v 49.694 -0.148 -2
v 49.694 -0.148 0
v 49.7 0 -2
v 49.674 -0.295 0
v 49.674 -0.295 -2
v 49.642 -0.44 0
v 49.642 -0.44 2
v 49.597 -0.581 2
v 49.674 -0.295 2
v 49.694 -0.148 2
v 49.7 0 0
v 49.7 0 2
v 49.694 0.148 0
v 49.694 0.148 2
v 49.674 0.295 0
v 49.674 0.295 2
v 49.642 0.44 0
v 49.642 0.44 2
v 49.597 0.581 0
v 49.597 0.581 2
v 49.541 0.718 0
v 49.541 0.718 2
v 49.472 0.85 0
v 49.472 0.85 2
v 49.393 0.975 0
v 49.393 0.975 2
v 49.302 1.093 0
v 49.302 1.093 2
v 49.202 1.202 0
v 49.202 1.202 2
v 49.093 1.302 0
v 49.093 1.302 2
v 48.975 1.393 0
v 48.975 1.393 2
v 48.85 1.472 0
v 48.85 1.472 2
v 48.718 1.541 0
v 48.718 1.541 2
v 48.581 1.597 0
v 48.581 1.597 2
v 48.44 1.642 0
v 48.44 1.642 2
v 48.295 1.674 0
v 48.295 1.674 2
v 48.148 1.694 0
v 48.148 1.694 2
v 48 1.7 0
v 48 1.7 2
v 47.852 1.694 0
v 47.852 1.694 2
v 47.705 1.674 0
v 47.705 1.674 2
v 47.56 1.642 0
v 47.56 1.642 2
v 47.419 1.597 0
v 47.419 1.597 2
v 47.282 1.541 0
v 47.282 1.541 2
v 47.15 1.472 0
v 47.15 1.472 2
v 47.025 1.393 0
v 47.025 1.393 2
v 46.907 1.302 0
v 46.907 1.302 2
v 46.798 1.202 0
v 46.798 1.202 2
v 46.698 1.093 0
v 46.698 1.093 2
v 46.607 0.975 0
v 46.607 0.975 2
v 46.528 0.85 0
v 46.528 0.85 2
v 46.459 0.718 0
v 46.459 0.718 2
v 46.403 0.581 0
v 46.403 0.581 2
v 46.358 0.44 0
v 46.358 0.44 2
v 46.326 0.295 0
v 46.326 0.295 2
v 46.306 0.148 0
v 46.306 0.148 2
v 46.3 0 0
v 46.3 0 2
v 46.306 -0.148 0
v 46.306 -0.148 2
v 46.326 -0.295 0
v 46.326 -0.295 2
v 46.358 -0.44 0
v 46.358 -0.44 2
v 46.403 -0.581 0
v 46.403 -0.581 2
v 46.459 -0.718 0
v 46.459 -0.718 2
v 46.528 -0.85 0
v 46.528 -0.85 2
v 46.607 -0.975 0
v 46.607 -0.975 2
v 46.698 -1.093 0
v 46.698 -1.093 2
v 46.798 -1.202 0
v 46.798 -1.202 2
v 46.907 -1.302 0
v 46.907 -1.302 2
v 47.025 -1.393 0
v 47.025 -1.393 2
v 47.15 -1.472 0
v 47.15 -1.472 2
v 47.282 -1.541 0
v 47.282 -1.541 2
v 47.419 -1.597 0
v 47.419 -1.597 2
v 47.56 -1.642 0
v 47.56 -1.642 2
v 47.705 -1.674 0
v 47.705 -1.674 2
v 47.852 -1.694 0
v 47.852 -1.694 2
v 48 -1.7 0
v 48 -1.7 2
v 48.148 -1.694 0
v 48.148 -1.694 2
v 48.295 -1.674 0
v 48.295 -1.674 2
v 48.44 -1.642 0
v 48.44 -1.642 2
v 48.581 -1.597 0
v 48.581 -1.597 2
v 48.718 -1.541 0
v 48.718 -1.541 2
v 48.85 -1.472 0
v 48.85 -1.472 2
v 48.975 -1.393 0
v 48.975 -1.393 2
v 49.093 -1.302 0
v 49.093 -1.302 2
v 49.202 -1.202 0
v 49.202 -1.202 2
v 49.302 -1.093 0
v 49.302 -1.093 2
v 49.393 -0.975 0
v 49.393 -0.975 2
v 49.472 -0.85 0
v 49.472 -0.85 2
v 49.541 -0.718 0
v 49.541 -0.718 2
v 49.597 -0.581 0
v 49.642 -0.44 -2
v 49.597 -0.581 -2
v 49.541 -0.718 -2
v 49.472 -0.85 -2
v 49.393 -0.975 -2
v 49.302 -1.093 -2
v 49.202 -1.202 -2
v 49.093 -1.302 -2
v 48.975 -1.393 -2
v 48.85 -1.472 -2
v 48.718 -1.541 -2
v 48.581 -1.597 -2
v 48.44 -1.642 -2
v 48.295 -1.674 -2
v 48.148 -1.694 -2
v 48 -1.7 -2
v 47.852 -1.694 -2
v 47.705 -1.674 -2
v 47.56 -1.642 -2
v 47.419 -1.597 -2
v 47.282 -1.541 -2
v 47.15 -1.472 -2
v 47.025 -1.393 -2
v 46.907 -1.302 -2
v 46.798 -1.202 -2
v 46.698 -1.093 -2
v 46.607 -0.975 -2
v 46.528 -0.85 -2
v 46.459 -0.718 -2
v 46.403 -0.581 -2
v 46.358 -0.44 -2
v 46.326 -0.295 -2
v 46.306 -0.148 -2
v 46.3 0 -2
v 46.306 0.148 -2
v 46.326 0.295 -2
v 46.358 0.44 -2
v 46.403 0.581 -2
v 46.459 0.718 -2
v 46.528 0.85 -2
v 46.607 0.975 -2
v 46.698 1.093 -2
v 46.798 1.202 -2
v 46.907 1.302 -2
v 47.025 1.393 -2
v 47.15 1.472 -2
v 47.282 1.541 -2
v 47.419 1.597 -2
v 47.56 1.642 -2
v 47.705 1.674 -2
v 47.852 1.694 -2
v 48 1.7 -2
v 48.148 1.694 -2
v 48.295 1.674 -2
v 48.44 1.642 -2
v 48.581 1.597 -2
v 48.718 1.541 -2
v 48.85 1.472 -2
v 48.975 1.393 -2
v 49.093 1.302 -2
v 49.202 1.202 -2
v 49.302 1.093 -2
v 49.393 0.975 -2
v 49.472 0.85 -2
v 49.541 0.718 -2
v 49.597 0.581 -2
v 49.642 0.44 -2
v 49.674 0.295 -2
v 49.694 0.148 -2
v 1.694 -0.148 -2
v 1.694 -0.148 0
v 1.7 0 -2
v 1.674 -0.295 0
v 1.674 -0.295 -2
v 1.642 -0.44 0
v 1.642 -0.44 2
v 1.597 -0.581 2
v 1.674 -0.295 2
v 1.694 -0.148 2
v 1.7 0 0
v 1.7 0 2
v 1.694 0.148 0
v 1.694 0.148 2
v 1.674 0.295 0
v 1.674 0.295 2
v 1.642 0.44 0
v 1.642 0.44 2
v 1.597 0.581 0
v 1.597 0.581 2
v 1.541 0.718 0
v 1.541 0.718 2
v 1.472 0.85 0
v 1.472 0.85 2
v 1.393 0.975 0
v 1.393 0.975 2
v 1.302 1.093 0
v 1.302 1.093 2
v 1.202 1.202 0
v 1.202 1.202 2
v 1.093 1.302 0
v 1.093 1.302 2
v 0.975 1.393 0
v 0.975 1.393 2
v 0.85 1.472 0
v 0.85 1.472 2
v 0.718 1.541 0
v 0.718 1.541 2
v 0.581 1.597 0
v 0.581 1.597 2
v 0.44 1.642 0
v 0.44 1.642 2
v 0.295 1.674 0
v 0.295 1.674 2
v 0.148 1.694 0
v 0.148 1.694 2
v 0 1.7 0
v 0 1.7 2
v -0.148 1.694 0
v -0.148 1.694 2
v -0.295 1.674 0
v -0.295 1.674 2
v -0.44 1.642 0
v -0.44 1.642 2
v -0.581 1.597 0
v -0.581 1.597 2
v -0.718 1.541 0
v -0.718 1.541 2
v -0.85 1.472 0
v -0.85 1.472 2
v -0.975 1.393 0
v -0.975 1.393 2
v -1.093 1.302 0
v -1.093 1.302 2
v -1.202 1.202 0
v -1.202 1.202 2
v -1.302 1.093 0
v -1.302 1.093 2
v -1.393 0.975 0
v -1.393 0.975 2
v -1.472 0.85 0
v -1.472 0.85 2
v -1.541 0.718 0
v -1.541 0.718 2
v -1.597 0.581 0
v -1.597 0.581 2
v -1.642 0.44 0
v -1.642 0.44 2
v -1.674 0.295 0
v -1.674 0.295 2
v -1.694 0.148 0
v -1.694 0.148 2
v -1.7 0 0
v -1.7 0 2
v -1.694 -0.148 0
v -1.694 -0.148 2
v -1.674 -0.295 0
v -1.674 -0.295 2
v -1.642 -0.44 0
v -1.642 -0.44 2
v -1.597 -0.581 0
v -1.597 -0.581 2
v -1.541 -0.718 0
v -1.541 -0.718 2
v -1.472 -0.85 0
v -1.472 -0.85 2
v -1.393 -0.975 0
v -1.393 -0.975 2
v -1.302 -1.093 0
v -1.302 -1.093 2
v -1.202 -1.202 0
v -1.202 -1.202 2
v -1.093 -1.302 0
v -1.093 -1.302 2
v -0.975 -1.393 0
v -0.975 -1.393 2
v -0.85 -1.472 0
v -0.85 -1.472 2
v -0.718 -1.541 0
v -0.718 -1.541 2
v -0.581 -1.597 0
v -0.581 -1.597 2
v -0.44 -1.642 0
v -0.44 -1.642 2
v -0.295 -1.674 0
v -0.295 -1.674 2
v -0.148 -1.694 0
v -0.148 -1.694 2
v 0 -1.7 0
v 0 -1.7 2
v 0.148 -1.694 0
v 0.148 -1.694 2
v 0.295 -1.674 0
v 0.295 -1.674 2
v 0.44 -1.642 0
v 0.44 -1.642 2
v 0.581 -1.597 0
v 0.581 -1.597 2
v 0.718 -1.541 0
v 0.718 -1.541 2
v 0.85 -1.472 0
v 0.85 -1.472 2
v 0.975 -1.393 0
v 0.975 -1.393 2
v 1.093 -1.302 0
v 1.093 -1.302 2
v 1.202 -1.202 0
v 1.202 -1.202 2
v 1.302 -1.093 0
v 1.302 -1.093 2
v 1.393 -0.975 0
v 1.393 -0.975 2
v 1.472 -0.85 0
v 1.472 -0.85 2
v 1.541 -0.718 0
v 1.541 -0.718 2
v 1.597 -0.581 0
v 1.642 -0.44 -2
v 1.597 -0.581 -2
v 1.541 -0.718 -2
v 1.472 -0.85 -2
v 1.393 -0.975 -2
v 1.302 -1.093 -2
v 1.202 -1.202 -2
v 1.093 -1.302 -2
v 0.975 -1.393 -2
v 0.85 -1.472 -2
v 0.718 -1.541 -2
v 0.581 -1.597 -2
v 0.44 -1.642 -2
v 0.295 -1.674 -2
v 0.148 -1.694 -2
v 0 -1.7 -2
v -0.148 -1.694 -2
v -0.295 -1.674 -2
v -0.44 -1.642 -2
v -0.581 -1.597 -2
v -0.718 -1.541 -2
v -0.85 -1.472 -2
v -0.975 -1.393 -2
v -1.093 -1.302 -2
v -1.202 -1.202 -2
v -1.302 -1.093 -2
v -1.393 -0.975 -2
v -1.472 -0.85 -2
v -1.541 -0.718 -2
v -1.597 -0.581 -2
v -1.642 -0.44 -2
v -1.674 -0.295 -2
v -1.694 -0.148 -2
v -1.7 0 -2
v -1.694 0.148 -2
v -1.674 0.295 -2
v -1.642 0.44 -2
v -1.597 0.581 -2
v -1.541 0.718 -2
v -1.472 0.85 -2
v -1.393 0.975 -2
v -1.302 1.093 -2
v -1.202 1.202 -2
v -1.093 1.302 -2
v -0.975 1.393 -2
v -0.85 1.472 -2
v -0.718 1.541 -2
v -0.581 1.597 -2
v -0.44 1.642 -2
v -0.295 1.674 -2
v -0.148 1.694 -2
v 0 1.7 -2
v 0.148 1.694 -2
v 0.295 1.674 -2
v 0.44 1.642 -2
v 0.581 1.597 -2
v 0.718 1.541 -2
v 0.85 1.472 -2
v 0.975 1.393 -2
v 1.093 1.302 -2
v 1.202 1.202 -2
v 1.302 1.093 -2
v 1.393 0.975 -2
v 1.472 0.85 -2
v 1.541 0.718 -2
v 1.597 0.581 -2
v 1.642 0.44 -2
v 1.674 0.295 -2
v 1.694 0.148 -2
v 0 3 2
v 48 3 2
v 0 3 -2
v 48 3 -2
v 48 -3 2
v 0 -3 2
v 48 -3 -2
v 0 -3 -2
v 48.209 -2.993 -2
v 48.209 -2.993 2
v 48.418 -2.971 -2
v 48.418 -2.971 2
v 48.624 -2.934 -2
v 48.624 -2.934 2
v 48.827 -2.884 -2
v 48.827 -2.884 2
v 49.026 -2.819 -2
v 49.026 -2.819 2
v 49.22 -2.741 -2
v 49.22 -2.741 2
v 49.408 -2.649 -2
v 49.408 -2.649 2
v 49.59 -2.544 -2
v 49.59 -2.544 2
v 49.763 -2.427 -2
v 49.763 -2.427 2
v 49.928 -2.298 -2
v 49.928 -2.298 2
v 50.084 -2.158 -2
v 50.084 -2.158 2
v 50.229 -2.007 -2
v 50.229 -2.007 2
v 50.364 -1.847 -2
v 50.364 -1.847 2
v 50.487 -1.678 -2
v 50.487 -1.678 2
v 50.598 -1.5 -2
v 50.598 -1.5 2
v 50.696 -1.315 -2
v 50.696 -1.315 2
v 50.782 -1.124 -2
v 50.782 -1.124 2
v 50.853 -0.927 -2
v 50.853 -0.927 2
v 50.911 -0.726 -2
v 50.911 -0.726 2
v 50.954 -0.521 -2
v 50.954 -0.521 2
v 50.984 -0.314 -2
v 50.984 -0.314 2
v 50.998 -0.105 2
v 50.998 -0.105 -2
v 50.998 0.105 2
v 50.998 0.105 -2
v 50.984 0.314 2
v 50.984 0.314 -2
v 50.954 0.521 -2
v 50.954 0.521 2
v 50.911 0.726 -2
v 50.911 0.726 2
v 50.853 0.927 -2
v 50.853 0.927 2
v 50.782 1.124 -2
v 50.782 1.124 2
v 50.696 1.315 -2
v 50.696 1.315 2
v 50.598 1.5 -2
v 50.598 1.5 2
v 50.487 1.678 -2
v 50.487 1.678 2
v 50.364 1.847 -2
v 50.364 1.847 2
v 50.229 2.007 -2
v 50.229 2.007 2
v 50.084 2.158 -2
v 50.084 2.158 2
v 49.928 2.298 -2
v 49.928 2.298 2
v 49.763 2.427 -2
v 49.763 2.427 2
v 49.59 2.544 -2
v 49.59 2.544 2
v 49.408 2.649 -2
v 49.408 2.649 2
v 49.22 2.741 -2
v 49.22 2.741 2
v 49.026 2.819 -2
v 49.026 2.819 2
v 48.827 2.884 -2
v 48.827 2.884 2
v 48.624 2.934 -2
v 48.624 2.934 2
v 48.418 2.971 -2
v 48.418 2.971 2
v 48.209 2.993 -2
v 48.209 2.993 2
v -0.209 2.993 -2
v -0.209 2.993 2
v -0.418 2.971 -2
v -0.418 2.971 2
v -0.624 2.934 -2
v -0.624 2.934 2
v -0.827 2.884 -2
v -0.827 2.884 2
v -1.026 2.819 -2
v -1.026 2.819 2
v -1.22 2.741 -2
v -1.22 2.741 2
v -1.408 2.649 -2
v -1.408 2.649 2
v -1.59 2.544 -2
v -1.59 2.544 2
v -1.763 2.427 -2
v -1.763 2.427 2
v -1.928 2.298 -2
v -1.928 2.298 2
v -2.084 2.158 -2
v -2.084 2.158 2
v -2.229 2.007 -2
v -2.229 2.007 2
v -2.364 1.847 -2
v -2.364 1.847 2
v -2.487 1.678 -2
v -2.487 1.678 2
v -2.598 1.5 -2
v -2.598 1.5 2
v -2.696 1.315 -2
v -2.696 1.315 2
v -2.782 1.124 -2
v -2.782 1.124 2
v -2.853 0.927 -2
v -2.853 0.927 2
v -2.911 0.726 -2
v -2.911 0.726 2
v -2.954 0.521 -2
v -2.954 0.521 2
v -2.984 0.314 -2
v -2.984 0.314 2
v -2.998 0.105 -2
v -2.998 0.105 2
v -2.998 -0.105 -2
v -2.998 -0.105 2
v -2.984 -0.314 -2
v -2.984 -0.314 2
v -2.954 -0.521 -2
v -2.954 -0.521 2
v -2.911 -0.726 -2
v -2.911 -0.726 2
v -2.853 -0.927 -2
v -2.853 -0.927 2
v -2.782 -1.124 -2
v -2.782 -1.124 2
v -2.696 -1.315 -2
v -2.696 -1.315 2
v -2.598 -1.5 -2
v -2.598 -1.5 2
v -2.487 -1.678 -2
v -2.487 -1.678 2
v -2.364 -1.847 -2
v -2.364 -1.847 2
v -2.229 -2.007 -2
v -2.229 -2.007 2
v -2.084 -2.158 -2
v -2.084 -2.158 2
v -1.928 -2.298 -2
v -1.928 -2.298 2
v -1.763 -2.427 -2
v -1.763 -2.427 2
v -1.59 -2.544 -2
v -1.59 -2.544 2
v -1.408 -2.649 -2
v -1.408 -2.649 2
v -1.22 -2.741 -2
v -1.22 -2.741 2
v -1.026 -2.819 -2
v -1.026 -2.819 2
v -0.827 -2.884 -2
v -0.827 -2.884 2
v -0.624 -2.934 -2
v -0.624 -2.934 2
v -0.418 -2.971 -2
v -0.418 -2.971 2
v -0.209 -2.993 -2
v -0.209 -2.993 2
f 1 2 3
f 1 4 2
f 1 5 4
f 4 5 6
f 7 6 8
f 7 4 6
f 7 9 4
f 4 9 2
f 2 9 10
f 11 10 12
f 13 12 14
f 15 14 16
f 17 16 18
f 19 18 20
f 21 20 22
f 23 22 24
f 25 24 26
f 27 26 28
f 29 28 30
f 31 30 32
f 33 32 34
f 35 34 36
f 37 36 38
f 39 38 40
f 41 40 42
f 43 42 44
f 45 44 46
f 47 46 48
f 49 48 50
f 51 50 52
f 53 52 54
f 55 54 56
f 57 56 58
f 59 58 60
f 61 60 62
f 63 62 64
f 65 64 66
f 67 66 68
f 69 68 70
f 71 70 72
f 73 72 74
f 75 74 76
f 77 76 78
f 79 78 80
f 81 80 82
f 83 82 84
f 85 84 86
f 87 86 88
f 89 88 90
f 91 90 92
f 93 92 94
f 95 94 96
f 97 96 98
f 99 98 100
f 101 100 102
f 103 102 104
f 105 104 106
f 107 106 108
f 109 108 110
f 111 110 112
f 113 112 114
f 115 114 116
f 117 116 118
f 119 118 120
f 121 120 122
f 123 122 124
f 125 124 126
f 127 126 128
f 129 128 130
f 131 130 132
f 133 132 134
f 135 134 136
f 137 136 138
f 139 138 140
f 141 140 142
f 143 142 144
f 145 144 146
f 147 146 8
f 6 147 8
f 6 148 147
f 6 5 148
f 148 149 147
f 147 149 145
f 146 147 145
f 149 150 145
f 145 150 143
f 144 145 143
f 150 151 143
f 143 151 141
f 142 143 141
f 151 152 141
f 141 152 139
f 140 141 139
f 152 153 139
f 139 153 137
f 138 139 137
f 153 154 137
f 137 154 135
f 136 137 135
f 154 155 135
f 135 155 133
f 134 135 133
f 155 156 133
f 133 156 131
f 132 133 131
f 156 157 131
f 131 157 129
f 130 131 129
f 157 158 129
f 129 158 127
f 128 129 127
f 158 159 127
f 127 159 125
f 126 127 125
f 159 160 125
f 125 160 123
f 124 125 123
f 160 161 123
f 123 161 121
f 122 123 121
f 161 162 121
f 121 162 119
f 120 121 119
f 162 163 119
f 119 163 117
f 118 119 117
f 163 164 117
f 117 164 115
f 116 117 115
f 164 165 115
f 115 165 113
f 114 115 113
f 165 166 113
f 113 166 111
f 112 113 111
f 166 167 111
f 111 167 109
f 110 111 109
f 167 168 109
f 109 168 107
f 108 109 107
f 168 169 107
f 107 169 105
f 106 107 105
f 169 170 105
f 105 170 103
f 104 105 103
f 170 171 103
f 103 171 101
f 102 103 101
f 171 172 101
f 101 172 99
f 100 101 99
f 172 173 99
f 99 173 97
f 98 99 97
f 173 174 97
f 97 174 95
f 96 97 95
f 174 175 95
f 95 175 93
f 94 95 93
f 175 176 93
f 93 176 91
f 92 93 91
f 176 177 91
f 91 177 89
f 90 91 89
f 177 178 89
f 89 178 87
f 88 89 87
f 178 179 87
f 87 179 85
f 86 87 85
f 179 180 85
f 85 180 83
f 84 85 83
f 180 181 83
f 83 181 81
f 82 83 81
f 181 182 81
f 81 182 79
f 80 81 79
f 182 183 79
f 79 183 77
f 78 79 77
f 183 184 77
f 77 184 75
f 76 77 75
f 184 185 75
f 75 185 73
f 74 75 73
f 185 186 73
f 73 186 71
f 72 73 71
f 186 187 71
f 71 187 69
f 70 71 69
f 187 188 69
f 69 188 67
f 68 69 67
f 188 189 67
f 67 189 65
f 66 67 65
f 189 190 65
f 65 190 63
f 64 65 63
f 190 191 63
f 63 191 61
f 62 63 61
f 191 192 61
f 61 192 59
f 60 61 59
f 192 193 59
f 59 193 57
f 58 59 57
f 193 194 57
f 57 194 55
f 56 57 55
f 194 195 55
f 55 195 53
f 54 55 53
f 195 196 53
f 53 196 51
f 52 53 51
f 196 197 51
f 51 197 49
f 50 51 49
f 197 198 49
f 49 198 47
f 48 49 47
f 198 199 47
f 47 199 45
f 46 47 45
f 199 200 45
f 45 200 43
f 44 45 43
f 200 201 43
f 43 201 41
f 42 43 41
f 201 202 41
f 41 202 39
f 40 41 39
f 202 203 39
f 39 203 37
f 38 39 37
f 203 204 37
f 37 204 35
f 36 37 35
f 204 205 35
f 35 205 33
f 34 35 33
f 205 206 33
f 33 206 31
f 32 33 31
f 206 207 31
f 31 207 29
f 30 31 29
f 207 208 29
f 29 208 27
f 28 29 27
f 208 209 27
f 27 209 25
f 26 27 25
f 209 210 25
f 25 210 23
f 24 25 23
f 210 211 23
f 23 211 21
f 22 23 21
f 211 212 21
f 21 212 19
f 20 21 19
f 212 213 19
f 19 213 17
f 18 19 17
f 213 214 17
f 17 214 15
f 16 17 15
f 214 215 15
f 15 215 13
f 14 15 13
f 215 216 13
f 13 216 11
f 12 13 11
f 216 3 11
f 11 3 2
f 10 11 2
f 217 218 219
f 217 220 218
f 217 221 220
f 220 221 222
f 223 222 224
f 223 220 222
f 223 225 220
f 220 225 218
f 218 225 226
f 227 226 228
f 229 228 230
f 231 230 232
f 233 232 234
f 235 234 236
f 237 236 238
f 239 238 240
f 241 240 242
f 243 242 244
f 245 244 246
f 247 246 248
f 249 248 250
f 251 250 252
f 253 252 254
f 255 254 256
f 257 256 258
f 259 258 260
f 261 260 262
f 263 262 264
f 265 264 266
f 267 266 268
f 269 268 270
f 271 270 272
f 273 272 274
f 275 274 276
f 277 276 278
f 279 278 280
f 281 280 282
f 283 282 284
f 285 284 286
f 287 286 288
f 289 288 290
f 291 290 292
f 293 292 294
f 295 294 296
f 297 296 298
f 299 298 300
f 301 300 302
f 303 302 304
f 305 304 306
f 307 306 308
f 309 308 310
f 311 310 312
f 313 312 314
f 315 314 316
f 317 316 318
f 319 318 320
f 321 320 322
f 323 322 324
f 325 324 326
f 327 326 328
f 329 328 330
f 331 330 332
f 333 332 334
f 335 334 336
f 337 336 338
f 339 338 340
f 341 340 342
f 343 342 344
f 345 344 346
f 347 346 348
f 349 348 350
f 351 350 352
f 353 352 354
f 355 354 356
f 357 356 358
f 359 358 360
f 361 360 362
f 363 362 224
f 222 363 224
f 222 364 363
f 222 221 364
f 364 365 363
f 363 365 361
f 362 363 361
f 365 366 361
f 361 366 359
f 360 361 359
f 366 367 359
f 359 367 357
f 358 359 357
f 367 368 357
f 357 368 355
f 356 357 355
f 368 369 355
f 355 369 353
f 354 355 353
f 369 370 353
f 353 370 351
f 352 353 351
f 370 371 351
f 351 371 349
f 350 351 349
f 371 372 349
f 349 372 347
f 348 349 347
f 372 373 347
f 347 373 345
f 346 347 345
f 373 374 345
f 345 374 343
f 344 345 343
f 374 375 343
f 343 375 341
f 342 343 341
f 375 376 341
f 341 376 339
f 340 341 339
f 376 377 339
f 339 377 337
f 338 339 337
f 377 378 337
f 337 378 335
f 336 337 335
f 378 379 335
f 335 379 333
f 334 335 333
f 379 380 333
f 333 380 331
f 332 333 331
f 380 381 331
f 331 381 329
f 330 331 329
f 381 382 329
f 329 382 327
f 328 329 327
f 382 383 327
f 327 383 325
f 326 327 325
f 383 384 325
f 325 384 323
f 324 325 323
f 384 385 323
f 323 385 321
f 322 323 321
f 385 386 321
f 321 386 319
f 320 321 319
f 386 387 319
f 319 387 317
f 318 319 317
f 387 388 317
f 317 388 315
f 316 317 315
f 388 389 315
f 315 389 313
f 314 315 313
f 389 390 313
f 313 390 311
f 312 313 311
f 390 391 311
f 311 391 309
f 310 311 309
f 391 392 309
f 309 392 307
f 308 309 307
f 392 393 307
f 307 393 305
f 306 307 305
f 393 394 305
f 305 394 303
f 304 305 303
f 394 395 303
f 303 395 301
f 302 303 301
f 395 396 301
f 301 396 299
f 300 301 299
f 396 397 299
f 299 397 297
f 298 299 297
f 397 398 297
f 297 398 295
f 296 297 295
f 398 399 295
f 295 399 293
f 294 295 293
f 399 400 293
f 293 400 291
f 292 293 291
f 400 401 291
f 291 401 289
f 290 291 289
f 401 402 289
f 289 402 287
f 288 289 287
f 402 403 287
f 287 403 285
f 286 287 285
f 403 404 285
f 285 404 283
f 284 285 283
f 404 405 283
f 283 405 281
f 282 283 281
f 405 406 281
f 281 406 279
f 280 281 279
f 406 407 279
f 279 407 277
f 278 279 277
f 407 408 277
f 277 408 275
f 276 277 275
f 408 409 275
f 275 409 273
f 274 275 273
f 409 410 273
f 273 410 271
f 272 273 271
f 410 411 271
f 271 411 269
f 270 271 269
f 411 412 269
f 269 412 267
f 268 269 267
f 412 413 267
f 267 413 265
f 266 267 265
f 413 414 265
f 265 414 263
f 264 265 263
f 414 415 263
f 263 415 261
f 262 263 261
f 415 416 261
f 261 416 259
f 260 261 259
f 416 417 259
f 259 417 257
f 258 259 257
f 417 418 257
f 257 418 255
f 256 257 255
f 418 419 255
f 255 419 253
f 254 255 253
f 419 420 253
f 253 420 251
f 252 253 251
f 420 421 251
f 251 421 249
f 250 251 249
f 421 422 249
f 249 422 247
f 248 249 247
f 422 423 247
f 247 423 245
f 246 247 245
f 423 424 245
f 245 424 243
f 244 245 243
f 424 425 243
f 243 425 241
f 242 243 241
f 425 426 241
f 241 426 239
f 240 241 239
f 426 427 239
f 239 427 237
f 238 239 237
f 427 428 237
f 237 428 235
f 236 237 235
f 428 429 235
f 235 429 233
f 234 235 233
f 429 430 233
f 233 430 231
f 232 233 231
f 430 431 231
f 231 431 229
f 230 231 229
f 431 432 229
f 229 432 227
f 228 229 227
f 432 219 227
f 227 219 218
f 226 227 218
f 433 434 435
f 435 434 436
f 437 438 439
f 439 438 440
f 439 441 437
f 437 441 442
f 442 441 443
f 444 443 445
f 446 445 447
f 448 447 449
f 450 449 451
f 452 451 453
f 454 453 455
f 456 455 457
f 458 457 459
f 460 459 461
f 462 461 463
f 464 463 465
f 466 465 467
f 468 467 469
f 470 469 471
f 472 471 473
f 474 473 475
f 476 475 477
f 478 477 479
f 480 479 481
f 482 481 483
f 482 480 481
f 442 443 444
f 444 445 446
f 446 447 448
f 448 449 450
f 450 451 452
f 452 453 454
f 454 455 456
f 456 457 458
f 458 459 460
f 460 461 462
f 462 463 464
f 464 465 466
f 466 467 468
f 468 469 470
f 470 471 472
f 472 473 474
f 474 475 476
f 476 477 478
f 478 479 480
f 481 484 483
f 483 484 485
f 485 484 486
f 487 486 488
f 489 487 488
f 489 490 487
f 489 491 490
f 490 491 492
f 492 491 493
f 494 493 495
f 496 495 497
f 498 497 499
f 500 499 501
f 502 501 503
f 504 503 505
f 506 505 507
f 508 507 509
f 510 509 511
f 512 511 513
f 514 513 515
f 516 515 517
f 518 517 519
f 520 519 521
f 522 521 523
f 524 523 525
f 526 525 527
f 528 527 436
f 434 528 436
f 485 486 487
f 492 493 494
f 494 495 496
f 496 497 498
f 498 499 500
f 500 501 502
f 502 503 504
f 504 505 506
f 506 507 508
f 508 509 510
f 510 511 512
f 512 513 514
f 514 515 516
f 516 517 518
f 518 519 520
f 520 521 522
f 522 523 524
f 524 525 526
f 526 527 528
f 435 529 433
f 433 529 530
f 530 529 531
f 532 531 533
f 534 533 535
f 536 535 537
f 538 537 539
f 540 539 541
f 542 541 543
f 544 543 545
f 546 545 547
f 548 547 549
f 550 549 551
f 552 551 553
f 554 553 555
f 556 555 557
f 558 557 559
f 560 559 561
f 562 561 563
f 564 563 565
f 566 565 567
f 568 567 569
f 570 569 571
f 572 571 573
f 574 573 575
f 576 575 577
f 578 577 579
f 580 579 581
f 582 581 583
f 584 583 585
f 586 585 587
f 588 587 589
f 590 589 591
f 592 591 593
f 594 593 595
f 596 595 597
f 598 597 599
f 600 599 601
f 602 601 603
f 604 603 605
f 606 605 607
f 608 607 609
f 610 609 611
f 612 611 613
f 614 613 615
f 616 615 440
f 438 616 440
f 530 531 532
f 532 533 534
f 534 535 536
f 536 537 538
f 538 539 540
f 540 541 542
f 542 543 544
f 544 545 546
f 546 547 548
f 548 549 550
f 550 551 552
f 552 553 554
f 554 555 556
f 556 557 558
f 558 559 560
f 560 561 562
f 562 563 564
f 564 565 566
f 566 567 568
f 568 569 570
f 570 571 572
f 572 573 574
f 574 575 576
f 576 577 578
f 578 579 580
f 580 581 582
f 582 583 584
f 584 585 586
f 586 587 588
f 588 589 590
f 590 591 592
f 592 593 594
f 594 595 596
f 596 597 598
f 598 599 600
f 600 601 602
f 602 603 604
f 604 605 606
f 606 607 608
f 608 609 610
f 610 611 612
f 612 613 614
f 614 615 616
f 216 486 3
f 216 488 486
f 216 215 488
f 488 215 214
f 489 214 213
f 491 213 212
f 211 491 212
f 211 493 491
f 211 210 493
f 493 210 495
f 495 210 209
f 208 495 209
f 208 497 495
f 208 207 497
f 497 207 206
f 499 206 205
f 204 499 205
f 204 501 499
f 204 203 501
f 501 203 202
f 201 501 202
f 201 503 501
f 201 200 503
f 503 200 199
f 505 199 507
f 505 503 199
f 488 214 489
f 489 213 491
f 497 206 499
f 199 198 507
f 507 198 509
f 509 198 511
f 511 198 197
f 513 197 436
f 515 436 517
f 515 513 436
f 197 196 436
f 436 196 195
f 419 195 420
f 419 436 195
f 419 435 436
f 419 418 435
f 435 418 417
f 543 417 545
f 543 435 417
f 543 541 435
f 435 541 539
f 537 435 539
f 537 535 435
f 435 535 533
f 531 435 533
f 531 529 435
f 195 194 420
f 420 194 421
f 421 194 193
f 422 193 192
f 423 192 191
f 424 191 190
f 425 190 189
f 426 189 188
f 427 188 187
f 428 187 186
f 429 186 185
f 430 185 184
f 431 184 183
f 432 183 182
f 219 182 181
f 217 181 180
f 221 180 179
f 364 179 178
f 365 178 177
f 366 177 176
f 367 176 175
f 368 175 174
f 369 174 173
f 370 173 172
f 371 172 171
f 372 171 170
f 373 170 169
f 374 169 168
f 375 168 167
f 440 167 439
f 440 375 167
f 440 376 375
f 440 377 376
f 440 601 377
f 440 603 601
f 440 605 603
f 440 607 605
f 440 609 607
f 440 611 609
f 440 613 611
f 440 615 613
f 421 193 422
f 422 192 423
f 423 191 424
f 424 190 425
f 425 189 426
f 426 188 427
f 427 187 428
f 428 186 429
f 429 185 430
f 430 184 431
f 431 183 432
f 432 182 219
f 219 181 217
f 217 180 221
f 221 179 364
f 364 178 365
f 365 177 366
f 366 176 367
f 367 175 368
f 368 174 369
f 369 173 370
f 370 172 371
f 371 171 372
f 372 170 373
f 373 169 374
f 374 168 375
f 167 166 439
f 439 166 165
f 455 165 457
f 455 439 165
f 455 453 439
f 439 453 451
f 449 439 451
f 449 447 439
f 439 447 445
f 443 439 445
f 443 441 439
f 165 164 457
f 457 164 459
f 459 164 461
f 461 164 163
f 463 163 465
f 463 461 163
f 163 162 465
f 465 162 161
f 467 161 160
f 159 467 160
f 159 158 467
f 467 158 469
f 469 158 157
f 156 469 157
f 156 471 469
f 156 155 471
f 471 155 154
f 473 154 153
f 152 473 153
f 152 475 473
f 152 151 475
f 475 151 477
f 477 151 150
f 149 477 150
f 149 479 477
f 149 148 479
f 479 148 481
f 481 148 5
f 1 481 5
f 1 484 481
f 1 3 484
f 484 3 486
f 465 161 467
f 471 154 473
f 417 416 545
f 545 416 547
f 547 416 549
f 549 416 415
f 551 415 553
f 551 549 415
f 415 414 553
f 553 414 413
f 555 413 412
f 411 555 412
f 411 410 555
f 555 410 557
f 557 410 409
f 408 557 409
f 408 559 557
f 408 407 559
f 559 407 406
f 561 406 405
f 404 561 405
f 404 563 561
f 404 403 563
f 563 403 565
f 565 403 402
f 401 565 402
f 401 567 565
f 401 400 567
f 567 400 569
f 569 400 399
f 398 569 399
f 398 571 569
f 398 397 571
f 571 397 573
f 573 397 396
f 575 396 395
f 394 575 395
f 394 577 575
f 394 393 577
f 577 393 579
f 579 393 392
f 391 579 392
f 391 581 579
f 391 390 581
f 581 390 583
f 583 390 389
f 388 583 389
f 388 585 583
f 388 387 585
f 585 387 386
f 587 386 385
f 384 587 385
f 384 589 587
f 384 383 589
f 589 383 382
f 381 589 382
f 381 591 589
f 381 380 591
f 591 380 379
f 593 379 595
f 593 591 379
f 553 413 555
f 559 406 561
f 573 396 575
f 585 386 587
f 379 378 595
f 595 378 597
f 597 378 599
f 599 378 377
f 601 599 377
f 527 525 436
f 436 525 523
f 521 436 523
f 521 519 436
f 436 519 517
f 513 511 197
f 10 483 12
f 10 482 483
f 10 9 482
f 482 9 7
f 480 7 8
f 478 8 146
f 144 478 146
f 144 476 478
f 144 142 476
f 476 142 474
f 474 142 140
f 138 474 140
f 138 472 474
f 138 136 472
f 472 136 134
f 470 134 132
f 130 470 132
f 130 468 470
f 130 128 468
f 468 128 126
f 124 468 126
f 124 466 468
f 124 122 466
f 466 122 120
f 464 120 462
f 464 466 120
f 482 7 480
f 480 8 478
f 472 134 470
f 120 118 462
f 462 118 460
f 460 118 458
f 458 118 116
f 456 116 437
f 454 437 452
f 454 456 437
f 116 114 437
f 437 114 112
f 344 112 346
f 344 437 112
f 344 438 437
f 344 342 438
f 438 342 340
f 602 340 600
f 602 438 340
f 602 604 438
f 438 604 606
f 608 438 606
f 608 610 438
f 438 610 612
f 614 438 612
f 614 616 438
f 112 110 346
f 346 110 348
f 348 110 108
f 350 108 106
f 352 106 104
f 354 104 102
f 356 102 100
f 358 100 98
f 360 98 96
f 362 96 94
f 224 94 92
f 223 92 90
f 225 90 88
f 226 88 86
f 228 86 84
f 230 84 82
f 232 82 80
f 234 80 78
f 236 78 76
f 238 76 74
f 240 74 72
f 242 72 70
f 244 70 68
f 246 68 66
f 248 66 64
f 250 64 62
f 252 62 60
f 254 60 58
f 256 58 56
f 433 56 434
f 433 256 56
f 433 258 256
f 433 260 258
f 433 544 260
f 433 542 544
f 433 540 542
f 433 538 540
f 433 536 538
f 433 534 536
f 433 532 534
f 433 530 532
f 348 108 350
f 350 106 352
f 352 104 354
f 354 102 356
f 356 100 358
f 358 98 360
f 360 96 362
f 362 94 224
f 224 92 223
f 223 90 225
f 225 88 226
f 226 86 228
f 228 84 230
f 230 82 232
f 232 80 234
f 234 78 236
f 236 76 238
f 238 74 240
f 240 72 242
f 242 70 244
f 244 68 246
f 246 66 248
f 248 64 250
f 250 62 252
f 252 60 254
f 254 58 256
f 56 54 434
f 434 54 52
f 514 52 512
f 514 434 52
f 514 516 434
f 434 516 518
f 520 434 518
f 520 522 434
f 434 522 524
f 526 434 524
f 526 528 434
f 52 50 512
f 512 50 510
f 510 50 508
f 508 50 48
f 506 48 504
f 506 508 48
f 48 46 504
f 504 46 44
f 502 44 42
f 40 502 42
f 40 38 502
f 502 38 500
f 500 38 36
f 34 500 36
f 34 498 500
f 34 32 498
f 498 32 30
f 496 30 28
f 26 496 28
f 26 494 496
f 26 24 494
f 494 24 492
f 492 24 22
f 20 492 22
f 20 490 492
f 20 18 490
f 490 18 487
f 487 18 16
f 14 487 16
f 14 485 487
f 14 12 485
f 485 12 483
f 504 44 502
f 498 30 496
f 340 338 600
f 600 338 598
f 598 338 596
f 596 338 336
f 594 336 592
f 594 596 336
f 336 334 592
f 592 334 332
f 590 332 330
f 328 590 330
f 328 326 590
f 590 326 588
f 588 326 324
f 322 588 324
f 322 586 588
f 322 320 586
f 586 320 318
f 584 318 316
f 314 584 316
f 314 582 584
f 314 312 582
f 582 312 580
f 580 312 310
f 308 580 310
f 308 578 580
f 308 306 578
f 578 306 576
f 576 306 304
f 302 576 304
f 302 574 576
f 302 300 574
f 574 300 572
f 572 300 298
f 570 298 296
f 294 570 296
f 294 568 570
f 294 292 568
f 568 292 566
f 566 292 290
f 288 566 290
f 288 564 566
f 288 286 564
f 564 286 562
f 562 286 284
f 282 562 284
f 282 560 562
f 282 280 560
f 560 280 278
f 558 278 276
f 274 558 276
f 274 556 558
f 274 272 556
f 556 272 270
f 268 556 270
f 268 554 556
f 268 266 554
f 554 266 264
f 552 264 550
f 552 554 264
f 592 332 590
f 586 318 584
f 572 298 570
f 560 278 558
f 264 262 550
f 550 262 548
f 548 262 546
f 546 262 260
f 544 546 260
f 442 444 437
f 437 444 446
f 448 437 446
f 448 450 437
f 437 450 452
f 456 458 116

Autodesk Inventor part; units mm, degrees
ref_plane "YZ Plane" through (0, 0, 0) normal (1, 0, 0) x (0, 1, 0)
ref_plane "XZ Plane" through (0, 0, 0) normal (0, 1, 0) x (-1, 0, 0)
ref_plane "XY Plane" through (0, 0, 0) normal (0, 0, 1) x (1, 0, 0)
sketch "スケッチ1" plane through (0, 0, 0) normal (0, 0, 1) x (1, 0, 0)
  circle A0 centre (0, 0) radius 1.7
  circle A1 centre (48, 0) radius 1.7
  circle A2 centre (0, 0) radius 3
  circle A3 centre (48, 0) radius 3
  line L0 (0, 3) -> (48, 3)
  line L1 (0, -3) -> (48, -3)
  dimension "d0" = 3.4
  dimension "d1" = 3.4
  dimension "d2" = 6
  dimension "d3" = 6
  dimension "d4" = 48
extrude "押し出し1" add sketch "スケッチ1" along normal mid plane 4
properties part number "HbFingerMainCouplerLink01"
